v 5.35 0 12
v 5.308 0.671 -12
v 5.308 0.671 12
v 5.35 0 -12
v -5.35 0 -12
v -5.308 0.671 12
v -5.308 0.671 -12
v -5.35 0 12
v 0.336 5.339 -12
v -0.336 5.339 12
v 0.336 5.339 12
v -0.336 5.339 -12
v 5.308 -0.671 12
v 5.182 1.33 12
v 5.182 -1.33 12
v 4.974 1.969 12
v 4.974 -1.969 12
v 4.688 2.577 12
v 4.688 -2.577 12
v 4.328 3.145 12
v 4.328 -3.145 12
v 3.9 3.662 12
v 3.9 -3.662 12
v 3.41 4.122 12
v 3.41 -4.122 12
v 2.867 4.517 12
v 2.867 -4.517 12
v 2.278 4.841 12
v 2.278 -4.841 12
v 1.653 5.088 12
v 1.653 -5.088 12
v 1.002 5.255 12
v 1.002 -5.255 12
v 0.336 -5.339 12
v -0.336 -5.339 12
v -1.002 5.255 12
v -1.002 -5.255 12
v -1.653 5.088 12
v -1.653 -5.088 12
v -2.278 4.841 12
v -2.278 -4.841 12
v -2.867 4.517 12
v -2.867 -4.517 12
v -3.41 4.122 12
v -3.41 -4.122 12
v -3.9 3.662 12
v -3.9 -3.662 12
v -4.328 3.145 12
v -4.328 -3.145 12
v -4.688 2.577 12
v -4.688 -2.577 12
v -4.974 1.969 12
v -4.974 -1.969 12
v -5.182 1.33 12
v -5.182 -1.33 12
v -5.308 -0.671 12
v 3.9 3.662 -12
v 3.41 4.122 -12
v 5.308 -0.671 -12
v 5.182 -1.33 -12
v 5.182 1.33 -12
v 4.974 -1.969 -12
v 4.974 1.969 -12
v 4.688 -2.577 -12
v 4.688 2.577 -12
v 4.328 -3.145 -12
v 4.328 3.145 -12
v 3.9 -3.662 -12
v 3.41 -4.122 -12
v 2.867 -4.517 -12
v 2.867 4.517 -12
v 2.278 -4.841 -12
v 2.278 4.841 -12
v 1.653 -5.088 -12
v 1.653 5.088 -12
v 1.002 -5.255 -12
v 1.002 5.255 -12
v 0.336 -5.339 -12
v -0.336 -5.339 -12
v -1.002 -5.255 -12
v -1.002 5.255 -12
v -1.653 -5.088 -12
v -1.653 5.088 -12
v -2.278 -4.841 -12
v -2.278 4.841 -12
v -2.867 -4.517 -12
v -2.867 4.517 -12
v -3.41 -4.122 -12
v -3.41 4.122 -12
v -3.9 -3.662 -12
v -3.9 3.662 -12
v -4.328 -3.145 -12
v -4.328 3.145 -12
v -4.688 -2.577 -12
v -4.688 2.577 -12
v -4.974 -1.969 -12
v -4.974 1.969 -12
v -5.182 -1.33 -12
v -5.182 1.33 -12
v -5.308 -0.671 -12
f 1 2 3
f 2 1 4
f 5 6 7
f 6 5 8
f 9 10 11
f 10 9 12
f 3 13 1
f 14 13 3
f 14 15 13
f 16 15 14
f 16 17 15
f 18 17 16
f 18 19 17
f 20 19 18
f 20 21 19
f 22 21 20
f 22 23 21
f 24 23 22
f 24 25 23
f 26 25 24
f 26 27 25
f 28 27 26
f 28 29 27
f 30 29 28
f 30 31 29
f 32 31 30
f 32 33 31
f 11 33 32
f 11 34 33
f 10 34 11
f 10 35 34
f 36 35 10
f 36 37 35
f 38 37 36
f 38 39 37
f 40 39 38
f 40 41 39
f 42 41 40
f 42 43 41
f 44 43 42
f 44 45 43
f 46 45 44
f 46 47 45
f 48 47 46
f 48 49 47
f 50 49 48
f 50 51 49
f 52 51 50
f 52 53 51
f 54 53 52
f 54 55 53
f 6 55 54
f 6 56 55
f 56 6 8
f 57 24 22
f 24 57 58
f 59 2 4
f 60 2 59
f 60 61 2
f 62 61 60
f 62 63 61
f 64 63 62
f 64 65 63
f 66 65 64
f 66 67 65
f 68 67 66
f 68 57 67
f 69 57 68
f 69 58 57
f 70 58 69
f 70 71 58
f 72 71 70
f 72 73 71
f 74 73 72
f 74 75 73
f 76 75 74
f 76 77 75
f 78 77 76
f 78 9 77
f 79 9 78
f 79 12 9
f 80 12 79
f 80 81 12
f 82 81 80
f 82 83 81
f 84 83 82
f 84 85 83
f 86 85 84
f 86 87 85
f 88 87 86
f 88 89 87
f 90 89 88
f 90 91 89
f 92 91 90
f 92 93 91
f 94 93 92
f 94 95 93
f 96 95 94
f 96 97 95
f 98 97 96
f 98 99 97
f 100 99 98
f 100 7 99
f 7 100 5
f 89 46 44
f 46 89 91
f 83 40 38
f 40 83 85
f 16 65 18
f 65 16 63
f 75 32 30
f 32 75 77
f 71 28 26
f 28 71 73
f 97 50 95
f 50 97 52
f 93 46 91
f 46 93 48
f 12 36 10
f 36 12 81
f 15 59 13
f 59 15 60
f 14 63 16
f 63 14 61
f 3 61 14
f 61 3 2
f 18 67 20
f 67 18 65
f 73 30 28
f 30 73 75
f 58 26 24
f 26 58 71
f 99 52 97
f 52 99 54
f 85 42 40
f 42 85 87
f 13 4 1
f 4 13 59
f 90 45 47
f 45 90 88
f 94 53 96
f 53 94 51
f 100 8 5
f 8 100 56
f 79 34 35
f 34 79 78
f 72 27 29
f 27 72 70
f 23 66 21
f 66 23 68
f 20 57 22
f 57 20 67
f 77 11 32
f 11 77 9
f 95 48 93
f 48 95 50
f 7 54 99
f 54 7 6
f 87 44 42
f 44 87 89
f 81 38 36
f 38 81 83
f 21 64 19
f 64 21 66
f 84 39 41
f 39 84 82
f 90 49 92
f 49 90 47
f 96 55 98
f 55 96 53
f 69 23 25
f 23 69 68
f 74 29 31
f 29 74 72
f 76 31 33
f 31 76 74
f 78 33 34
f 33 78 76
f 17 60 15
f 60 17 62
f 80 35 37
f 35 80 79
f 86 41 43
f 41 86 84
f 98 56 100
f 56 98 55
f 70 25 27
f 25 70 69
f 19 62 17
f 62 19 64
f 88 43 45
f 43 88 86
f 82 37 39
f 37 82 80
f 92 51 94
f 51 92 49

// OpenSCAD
$fn = 50;


difference() {
	union() {
		translate(v = [0, 0, -12.0000000000]) {
			cylinder(h = 24, r = 5.3500000000);
		}
	}
	union() {
		translate(v = [0, 0, -100.0000000000]) {
			cylinder(h = 200, r = 0);
		}
	}
}
